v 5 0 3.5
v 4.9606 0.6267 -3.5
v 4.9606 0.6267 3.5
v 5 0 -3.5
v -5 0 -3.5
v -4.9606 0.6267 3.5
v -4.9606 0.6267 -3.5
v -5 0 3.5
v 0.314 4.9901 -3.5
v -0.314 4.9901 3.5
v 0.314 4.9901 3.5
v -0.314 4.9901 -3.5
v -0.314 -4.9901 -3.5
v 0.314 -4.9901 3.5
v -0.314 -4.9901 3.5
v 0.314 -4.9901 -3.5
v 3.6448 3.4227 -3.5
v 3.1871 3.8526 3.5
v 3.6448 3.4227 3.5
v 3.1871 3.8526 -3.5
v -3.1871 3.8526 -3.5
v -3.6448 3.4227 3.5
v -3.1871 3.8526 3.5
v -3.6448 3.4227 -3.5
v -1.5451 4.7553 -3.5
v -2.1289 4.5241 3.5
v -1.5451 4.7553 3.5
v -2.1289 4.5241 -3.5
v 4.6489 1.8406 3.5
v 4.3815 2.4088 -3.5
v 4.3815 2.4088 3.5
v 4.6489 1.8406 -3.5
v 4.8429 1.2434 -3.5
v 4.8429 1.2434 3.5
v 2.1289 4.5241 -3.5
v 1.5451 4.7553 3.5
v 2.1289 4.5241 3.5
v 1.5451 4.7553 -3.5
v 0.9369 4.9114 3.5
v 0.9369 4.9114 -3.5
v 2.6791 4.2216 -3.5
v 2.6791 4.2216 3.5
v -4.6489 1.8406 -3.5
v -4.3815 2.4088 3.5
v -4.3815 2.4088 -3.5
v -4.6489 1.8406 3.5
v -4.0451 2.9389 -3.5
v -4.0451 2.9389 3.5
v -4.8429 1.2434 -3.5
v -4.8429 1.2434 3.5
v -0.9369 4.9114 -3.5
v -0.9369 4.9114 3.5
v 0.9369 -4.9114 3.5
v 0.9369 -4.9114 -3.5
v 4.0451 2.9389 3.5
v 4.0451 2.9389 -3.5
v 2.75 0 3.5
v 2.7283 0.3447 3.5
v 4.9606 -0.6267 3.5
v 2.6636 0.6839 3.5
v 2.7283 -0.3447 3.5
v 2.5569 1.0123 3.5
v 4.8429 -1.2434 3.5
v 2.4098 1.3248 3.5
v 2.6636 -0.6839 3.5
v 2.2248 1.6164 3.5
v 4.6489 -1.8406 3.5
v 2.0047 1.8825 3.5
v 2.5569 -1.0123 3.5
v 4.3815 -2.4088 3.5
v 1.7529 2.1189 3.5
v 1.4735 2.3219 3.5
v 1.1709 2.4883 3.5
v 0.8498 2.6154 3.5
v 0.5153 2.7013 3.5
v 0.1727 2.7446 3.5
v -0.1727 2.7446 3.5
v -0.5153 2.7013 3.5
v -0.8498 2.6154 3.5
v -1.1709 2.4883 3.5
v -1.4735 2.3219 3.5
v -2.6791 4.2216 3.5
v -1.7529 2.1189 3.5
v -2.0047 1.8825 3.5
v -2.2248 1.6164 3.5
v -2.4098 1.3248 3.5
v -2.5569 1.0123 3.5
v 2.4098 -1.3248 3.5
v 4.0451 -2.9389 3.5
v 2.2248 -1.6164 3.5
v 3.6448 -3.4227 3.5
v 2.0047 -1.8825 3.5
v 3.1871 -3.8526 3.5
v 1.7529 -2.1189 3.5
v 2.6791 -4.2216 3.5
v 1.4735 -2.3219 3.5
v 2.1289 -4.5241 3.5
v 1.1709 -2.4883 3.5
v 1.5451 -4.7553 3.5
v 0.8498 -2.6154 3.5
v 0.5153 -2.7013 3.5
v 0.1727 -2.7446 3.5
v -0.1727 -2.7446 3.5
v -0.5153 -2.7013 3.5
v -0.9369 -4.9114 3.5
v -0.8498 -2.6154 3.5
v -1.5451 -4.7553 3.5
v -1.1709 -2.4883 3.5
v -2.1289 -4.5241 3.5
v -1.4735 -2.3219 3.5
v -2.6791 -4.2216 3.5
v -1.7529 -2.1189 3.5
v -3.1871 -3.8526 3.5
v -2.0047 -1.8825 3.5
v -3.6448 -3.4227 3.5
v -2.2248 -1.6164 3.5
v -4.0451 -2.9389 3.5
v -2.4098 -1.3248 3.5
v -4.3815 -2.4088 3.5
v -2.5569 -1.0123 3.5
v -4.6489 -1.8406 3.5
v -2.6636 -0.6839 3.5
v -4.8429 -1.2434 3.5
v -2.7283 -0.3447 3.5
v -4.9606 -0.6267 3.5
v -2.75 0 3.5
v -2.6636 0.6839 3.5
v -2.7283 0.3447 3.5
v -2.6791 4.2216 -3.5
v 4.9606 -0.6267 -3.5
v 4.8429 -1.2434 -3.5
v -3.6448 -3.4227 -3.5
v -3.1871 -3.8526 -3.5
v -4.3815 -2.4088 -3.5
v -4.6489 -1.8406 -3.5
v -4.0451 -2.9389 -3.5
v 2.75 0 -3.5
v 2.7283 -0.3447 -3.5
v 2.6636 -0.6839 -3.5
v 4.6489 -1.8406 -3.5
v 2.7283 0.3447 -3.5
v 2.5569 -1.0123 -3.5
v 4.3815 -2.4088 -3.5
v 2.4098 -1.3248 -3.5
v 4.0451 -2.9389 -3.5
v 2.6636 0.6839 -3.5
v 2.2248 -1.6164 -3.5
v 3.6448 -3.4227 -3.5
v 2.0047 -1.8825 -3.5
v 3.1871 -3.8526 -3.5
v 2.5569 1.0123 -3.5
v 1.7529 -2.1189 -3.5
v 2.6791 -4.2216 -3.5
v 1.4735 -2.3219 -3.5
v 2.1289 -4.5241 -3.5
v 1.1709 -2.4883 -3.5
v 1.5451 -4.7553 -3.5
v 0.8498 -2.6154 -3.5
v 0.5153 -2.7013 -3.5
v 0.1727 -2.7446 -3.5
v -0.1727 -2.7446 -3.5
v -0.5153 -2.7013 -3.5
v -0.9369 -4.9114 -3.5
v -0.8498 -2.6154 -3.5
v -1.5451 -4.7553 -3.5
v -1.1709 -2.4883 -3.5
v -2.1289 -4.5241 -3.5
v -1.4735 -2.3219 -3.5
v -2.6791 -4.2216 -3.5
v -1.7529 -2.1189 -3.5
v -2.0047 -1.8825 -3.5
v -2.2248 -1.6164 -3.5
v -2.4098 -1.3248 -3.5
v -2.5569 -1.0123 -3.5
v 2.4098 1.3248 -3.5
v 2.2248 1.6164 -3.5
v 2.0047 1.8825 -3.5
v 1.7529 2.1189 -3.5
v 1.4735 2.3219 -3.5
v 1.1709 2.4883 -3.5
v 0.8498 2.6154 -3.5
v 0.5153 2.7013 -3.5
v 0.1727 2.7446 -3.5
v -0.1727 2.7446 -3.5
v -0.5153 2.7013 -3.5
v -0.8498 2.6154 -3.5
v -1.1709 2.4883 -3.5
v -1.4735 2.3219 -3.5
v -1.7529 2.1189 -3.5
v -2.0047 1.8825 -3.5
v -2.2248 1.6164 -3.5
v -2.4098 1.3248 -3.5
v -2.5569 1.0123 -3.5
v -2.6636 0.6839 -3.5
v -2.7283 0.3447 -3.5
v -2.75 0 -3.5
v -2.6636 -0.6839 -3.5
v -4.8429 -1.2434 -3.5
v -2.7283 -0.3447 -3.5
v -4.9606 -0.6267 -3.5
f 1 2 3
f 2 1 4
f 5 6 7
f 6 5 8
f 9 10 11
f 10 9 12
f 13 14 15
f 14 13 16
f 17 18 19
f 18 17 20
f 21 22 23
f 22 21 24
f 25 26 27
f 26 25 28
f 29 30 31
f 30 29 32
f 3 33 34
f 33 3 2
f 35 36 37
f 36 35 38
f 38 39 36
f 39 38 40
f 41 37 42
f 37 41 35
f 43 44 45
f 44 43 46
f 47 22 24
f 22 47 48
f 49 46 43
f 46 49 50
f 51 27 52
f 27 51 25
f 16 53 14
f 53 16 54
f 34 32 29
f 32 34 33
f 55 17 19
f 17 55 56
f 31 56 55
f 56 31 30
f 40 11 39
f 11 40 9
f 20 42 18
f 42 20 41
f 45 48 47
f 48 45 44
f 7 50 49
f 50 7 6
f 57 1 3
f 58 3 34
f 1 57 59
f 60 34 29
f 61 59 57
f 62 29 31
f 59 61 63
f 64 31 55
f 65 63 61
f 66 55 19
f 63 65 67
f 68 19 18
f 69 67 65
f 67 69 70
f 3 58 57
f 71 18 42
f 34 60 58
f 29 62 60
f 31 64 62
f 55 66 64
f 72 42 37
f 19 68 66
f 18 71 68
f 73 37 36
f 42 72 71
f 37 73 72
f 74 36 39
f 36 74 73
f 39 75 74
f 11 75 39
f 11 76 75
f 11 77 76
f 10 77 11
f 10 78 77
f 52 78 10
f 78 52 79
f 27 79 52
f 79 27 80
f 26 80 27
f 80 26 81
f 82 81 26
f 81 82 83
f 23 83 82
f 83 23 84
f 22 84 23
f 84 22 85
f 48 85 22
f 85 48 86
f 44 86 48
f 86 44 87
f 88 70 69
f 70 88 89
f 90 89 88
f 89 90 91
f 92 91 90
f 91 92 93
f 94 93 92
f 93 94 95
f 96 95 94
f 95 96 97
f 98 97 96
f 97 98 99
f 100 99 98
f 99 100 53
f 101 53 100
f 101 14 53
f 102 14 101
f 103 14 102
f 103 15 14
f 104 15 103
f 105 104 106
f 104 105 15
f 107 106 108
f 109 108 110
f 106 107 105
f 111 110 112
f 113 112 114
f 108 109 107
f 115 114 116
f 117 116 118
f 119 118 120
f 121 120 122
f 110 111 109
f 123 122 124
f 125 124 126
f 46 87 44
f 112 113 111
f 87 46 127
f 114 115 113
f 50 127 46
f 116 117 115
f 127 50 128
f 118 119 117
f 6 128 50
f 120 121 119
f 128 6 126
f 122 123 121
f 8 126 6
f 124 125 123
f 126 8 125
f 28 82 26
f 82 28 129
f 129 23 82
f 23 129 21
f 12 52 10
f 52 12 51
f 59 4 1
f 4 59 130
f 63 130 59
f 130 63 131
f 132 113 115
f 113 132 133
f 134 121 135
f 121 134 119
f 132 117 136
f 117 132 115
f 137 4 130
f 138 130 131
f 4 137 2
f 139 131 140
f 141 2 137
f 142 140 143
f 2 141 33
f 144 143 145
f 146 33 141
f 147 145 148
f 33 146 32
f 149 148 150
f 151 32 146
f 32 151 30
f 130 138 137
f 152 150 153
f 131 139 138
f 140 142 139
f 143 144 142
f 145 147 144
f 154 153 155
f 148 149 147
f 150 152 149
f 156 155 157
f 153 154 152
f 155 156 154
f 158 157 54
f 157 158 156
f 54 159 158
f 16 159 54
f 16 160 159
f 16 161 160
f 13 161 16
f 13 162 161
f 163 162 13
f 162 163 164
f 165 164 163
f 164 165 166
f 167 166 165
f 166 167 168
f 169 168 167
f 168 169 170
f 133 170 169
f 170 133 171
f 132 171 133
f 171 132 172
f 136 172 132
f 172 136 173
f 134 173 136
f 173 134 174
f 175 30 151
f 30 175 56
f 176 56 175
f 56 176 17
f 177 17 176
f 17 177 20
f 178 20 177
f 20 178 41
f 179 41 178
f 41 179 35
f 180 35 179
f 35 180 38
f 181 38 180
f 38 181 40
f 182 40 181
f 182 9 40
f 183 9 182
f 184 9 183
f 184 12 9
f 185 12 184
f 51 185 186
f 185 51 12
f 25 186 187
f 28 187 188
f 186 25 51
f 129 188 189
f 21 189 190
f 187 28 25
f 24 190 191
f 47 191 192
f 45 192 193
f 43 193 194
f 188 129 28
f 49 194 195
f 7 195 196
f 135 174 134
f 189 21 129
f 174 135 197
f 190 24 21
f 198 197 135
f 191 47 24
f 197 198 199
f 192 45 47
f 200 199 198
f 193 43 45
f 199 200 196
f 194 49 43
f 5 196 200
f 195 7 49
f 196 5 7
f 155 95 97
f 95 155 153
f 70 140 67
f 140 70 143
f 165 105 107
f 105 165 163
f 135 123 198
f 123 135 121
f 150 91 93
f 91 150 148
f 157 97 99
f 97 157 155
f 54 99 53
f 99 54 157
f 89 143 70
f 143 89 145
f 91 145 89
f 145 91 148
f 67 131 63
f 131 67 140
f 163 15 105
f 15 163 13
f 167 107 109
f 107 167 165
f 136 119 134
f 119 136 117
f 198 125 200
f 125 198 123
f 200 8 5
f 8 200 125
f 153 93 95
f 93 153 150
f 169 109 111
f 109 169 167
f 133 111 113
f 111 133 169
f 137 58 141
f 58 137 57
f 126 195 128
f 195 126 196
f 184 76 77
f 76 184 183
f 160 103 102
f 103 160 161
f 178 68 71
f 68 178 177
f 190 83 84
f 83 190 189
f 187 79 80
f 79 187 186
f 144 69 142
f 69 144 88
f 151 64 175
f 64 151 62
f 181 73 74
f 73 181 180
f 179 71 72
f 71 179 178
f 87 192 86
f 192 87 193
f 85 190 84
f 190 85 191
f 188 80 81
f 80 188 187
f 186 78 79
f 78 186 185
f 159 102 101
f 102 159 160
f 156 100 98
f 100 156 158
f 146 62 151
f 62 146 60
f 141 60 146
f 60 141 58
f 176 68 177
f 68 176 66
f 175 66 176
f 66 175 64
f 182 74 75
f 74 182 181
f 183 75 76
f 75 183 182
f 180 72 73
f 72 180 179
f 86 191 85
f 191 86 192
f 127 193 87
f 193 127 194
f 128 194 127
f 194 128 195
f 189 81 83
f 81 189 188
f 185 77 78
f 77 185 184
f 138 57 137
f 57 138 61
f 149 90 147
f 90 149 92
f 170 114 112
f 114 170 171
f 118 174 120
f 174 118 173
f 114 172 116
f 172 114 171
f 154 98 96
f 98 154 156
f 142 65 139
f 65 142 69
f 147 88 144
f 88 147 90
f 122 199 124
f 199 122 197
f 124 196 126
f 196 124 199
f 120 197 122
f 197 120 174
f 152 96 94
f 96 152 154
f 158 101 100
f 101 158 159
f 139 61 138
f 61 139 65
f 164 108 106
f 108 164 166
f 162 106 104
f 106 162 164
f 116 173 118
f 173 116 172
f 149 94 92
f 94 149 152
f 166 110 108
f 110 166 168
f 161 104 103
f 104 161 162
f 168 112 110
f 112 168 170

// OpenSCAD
$fn = 50;


difference() {
	union() {
		translate(v = [0, 0, -3.5000000000]) {
			cylinder(h = 7, r = 5.0000000000);
		}
	}
	union() {
		translate(v = [0, 0, -100.0000000000]) {
			cylinder(h = 200, r = 2.7500000000);
		}
	}
}
